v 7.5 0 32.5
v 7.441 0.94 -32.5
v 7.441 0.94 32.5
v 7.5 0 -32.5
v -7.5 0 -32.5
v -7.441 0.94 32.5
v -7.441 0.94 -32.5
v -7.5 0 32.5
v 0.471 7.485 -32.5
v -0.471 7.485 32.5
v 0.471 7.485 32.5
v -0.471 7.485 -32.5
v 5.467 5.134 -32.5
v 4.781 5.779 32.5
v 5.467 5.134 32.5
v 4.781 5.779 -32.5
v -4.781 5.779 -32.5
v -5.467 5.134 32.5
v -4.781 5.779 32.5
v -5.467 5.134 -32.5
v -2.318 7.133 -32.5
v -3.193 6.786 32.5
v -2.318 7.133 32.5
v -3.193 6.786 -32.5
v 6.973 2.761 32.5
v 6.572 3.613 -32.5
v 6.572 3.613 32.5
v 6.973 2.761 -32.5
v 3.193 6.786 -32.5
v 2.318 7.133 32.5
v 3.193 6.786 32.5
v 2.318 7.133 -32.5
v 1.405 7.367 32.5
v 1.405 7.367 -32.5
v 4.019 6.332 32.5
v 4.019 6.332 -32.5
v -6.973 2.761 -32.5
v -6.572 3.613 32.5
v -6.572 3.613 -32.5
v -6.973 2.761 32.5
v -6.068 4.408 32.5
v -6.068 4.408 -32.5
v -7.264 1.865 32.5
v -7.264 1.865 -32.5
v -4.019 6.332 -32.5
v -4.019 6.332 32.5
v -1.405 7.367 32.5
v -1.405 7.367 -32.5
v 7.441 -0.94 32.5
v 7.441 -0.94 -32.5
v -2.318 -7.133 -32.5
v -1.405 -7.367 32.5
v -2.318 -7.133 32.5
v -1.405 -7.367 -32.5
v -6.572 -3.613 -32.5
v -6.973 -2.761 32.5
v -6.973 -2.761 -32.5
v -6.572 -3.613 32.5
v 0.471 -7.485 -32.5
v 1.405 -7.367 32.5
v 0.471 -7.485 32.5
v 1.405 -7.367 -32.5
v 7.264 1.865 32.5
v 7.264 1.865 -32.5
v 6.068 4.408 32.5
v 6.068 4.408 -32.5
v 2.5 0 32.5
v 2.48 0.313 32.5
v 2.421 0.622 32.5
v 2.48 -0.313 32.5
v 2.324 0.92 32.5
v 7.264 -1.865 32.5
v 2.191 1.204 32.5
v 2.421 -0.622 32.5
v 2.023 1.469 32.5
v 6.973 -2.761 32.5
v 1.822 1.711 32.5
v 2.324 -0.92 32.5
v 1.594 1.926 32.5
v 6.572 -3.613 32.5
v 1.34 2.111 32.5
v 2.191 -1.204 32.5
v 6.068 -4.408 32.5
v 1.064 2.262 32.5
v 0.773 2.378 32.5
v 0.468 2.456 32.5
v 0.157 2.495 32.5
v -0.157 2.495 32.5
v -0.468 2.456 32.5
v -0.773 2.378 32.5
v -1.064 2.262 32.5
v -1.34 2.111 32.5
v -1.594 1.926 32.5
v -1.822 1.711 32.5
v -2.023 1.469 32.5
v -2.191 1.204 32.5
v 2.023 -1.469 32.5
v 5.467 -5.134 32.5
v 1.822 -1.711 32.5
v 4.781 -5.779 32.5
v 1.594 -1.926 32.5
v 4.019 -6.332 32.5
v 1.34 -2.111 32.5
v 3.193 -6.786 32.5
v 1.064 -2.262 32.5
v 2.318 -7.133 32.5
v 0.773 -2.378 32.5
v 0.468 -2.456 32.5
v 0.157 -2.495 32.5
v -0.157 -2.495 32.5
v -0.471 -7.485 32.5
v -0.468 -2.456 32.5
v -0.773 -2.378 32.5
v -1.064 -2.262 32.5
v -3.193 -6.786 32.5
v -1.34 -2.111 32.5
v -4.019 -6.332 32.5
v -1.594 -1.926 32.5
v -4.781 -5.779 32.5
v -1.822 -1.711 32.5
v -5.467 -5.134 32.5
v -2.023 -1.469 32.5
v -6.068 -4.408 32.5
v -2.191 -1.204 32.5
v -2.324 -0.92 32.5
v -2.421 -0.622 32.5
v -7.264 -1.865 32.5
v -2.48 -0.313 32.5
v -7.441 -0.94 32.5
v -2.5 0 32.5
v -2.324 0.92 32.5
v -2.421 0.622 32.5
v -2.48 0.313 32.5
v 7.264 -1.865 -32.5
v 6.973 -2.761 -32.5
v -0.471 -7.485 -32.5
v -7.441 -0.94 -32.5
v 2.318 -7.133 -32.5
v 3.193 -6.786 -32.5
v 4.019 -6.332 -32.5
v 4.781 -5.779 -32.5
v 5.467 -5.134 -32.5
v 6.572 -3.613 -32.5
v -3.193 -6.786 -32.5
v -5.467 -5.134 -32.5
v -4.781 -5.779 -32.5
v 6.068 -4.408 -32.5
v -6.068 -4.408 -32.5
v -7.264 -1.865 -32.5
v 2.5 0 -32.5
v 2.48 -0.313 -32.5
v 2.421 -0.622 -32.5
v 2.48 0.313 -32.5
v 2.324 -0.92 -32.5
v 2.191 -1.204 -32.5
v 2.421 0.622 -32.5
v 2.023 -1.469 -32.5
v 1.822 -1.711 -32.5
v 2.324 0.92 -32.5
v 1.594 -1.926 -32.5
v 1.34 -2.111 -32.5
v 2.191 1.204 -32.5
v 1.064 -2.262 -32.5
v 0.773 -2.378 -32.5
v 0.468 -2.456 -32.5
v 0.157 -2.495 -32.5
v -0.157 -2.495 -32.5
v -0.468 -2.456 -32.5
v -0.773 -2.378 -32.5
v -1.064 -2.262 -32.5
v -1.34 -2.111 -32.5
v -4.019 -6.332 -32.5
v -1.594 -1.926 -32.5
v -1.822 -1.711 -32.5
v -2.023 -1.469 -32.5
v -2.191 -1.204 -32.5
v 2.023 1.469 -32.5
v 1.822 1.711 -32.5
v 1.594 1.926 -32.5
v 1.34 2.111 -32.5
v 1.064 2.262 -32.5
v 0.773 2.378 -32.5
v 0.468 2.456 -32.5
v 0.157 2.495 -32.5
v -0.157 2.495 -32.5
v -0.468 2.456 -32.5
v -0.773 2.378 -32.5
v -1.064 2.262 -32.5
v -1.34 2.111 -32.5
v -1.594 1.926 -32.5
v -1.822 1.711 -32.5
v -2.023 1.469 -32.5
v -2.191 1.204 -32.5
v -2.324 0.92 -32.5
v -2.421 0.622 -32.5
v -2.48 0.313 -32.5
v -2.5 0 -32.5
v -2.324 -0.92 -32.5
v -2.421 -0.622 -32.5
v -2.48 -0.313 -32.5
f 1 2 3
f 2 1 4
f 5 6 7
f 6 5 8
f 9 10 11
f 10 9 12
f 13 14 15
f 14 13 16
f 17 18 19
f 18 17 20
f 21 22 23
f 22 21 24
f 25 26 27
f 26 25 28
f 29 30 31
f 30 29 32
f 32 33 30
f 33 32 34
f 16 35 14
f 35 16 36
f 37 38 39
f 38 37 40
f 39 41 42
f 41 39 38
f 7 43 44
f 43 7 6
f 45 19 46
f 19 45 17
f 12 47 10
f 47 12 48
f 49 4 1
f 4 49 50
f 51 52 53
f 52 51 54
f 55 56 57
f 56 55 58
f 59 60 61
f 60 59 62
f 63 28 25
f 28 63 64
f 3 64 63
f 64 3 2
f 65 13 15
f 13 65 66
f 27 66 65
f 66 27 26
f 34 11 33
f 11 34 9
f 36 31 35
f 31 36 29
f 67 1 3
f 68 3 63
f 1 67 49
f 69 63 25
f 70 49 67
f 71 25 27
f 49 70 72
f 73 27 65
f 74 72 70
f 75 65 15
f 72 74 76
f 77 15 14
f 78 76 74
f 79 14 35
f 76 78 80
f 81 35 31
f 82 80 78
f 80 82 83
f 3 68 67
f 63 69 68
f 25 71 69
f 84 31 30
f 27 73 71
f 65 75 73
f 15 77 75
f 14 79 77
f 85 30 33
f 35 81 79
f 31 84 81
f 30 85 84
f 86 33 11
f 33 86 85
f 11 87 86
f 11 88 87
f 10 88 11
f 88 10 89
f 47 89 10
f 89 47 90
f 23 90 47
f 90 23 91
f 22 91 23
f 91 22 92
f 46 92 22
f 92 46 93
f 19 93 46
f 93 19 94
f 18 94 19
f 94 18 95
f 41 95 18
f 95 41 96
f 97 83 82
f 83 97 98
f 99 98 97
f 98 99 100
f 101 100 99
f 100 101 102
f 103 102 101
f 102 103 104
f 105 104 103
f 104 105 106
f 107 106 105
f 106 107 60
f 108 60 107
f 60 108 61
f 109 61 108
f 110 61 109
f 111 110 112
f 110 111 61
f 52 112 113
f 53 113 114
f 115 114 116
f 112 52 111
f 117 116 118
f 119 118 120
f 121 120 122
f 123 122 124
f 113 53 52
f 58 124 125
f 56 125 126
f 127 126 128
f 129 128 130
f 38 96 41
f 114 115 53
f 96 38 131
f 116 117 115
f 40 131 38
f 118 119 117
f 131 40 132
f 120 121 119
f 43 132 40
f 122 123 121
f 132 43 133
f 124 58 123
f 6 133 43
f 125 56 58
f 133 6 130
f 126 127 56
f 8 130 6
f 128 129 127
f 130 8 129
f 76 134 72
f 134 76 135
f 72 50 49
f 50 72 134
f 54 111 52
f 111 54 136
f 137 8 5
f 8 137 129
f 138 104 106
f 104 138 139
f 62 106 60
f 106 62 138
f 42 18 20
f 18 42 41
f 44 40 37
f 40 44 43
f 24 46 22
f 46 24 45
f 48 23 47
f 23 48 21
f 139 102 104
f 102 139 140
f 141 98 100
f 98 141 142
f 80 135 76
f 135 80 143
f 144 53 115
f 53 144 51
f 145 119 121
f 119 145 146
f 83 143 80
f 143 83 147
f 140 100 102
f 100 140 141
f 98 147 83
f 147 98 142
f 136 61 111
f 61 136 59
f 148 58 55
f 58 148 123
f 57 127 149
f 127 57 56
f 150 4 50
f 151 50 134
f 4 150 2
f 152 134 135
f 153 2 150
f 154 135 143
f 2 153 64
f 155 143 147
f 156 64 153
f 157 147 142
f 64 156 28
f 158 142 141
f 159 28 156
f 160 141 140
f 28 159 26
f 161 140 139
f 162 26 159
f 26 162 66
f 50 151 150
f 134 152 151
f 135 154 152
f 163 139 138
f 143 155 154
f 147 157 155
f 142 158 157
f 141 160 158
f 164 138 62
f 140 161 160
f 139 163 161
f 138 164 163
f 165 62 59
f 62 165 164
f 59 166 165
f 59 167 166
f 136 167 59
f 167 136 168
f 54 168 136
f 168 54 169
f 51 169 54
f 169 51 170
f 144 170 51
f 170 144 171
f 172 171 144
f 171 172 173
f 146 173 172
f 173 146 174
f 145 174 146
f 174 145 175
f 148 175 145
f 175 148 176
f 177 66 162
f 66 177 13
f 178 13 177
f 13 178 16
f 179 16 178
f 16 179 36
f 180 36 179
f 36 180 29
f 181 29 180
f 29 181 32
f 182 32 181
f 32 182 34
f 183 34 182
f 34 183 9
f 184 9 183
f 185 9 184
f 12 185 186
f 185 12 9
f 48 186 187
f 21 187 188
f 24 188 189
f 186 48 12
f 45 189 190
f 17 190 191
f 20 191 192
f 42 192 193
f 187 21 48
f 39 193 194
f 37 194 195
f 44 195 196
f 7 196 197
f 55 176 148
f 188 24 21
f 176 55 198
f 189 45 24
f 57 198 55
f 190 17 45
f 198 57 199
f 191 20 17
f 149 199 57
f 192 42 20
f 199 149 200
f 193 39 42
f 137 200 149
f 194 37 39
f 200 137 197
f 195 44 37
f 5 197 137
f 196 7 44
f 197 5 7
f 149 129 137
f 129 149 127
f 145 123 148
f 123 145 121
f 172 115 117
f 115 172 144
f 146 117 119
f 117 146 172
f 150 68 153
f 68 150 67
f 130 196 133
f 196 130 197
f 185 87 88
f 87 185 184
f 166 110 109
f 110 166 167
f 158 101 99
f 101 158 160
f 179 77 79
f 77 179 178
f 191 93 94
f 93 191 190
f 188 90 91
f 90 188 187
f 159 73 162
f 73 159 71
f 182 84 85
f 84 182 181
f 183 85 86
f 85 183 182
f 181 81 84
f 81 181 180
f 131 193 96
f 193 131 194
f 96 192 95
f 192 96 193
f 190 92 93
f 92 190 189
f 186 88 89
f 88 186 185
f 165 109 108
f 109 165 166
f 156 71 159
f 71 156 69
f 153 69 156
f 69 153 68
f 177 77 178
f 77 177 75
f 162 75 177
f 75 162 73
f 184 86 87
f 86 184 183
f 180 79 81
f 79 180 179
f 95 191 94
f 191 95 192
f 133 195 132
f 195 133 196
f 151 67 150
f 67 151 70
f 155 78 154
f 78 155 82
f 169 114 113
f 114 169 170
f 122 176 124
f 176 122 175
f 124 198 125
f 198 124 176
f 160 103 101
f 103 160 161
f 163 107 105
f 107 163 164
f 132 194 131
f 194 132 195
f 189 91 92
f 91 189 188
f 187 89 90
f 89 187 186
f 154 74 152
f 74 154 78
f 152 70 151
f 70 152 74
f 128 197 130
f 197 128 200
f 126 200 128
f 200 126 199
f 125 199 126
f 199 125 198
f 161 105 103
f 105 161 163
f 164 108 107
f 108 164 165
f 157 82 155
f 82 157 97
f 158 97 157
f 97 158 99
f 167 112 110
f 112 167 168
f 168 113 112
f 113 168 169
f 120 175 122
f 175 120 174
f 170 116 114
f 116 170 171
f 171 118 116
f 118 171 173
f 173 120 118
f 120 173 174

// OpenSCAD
$fn = 50;


difference() {
	union() {
		translate(v = [0, 0, -32.5000000000]) {
			cylinder(h = 65, r = 7.5000000000);
		}
	}
	union() {
		translate(v = [0, 0, -100.0000000000]) {
			cylinder(h = 200, r = 2.5000000000);
		}
	}
}
